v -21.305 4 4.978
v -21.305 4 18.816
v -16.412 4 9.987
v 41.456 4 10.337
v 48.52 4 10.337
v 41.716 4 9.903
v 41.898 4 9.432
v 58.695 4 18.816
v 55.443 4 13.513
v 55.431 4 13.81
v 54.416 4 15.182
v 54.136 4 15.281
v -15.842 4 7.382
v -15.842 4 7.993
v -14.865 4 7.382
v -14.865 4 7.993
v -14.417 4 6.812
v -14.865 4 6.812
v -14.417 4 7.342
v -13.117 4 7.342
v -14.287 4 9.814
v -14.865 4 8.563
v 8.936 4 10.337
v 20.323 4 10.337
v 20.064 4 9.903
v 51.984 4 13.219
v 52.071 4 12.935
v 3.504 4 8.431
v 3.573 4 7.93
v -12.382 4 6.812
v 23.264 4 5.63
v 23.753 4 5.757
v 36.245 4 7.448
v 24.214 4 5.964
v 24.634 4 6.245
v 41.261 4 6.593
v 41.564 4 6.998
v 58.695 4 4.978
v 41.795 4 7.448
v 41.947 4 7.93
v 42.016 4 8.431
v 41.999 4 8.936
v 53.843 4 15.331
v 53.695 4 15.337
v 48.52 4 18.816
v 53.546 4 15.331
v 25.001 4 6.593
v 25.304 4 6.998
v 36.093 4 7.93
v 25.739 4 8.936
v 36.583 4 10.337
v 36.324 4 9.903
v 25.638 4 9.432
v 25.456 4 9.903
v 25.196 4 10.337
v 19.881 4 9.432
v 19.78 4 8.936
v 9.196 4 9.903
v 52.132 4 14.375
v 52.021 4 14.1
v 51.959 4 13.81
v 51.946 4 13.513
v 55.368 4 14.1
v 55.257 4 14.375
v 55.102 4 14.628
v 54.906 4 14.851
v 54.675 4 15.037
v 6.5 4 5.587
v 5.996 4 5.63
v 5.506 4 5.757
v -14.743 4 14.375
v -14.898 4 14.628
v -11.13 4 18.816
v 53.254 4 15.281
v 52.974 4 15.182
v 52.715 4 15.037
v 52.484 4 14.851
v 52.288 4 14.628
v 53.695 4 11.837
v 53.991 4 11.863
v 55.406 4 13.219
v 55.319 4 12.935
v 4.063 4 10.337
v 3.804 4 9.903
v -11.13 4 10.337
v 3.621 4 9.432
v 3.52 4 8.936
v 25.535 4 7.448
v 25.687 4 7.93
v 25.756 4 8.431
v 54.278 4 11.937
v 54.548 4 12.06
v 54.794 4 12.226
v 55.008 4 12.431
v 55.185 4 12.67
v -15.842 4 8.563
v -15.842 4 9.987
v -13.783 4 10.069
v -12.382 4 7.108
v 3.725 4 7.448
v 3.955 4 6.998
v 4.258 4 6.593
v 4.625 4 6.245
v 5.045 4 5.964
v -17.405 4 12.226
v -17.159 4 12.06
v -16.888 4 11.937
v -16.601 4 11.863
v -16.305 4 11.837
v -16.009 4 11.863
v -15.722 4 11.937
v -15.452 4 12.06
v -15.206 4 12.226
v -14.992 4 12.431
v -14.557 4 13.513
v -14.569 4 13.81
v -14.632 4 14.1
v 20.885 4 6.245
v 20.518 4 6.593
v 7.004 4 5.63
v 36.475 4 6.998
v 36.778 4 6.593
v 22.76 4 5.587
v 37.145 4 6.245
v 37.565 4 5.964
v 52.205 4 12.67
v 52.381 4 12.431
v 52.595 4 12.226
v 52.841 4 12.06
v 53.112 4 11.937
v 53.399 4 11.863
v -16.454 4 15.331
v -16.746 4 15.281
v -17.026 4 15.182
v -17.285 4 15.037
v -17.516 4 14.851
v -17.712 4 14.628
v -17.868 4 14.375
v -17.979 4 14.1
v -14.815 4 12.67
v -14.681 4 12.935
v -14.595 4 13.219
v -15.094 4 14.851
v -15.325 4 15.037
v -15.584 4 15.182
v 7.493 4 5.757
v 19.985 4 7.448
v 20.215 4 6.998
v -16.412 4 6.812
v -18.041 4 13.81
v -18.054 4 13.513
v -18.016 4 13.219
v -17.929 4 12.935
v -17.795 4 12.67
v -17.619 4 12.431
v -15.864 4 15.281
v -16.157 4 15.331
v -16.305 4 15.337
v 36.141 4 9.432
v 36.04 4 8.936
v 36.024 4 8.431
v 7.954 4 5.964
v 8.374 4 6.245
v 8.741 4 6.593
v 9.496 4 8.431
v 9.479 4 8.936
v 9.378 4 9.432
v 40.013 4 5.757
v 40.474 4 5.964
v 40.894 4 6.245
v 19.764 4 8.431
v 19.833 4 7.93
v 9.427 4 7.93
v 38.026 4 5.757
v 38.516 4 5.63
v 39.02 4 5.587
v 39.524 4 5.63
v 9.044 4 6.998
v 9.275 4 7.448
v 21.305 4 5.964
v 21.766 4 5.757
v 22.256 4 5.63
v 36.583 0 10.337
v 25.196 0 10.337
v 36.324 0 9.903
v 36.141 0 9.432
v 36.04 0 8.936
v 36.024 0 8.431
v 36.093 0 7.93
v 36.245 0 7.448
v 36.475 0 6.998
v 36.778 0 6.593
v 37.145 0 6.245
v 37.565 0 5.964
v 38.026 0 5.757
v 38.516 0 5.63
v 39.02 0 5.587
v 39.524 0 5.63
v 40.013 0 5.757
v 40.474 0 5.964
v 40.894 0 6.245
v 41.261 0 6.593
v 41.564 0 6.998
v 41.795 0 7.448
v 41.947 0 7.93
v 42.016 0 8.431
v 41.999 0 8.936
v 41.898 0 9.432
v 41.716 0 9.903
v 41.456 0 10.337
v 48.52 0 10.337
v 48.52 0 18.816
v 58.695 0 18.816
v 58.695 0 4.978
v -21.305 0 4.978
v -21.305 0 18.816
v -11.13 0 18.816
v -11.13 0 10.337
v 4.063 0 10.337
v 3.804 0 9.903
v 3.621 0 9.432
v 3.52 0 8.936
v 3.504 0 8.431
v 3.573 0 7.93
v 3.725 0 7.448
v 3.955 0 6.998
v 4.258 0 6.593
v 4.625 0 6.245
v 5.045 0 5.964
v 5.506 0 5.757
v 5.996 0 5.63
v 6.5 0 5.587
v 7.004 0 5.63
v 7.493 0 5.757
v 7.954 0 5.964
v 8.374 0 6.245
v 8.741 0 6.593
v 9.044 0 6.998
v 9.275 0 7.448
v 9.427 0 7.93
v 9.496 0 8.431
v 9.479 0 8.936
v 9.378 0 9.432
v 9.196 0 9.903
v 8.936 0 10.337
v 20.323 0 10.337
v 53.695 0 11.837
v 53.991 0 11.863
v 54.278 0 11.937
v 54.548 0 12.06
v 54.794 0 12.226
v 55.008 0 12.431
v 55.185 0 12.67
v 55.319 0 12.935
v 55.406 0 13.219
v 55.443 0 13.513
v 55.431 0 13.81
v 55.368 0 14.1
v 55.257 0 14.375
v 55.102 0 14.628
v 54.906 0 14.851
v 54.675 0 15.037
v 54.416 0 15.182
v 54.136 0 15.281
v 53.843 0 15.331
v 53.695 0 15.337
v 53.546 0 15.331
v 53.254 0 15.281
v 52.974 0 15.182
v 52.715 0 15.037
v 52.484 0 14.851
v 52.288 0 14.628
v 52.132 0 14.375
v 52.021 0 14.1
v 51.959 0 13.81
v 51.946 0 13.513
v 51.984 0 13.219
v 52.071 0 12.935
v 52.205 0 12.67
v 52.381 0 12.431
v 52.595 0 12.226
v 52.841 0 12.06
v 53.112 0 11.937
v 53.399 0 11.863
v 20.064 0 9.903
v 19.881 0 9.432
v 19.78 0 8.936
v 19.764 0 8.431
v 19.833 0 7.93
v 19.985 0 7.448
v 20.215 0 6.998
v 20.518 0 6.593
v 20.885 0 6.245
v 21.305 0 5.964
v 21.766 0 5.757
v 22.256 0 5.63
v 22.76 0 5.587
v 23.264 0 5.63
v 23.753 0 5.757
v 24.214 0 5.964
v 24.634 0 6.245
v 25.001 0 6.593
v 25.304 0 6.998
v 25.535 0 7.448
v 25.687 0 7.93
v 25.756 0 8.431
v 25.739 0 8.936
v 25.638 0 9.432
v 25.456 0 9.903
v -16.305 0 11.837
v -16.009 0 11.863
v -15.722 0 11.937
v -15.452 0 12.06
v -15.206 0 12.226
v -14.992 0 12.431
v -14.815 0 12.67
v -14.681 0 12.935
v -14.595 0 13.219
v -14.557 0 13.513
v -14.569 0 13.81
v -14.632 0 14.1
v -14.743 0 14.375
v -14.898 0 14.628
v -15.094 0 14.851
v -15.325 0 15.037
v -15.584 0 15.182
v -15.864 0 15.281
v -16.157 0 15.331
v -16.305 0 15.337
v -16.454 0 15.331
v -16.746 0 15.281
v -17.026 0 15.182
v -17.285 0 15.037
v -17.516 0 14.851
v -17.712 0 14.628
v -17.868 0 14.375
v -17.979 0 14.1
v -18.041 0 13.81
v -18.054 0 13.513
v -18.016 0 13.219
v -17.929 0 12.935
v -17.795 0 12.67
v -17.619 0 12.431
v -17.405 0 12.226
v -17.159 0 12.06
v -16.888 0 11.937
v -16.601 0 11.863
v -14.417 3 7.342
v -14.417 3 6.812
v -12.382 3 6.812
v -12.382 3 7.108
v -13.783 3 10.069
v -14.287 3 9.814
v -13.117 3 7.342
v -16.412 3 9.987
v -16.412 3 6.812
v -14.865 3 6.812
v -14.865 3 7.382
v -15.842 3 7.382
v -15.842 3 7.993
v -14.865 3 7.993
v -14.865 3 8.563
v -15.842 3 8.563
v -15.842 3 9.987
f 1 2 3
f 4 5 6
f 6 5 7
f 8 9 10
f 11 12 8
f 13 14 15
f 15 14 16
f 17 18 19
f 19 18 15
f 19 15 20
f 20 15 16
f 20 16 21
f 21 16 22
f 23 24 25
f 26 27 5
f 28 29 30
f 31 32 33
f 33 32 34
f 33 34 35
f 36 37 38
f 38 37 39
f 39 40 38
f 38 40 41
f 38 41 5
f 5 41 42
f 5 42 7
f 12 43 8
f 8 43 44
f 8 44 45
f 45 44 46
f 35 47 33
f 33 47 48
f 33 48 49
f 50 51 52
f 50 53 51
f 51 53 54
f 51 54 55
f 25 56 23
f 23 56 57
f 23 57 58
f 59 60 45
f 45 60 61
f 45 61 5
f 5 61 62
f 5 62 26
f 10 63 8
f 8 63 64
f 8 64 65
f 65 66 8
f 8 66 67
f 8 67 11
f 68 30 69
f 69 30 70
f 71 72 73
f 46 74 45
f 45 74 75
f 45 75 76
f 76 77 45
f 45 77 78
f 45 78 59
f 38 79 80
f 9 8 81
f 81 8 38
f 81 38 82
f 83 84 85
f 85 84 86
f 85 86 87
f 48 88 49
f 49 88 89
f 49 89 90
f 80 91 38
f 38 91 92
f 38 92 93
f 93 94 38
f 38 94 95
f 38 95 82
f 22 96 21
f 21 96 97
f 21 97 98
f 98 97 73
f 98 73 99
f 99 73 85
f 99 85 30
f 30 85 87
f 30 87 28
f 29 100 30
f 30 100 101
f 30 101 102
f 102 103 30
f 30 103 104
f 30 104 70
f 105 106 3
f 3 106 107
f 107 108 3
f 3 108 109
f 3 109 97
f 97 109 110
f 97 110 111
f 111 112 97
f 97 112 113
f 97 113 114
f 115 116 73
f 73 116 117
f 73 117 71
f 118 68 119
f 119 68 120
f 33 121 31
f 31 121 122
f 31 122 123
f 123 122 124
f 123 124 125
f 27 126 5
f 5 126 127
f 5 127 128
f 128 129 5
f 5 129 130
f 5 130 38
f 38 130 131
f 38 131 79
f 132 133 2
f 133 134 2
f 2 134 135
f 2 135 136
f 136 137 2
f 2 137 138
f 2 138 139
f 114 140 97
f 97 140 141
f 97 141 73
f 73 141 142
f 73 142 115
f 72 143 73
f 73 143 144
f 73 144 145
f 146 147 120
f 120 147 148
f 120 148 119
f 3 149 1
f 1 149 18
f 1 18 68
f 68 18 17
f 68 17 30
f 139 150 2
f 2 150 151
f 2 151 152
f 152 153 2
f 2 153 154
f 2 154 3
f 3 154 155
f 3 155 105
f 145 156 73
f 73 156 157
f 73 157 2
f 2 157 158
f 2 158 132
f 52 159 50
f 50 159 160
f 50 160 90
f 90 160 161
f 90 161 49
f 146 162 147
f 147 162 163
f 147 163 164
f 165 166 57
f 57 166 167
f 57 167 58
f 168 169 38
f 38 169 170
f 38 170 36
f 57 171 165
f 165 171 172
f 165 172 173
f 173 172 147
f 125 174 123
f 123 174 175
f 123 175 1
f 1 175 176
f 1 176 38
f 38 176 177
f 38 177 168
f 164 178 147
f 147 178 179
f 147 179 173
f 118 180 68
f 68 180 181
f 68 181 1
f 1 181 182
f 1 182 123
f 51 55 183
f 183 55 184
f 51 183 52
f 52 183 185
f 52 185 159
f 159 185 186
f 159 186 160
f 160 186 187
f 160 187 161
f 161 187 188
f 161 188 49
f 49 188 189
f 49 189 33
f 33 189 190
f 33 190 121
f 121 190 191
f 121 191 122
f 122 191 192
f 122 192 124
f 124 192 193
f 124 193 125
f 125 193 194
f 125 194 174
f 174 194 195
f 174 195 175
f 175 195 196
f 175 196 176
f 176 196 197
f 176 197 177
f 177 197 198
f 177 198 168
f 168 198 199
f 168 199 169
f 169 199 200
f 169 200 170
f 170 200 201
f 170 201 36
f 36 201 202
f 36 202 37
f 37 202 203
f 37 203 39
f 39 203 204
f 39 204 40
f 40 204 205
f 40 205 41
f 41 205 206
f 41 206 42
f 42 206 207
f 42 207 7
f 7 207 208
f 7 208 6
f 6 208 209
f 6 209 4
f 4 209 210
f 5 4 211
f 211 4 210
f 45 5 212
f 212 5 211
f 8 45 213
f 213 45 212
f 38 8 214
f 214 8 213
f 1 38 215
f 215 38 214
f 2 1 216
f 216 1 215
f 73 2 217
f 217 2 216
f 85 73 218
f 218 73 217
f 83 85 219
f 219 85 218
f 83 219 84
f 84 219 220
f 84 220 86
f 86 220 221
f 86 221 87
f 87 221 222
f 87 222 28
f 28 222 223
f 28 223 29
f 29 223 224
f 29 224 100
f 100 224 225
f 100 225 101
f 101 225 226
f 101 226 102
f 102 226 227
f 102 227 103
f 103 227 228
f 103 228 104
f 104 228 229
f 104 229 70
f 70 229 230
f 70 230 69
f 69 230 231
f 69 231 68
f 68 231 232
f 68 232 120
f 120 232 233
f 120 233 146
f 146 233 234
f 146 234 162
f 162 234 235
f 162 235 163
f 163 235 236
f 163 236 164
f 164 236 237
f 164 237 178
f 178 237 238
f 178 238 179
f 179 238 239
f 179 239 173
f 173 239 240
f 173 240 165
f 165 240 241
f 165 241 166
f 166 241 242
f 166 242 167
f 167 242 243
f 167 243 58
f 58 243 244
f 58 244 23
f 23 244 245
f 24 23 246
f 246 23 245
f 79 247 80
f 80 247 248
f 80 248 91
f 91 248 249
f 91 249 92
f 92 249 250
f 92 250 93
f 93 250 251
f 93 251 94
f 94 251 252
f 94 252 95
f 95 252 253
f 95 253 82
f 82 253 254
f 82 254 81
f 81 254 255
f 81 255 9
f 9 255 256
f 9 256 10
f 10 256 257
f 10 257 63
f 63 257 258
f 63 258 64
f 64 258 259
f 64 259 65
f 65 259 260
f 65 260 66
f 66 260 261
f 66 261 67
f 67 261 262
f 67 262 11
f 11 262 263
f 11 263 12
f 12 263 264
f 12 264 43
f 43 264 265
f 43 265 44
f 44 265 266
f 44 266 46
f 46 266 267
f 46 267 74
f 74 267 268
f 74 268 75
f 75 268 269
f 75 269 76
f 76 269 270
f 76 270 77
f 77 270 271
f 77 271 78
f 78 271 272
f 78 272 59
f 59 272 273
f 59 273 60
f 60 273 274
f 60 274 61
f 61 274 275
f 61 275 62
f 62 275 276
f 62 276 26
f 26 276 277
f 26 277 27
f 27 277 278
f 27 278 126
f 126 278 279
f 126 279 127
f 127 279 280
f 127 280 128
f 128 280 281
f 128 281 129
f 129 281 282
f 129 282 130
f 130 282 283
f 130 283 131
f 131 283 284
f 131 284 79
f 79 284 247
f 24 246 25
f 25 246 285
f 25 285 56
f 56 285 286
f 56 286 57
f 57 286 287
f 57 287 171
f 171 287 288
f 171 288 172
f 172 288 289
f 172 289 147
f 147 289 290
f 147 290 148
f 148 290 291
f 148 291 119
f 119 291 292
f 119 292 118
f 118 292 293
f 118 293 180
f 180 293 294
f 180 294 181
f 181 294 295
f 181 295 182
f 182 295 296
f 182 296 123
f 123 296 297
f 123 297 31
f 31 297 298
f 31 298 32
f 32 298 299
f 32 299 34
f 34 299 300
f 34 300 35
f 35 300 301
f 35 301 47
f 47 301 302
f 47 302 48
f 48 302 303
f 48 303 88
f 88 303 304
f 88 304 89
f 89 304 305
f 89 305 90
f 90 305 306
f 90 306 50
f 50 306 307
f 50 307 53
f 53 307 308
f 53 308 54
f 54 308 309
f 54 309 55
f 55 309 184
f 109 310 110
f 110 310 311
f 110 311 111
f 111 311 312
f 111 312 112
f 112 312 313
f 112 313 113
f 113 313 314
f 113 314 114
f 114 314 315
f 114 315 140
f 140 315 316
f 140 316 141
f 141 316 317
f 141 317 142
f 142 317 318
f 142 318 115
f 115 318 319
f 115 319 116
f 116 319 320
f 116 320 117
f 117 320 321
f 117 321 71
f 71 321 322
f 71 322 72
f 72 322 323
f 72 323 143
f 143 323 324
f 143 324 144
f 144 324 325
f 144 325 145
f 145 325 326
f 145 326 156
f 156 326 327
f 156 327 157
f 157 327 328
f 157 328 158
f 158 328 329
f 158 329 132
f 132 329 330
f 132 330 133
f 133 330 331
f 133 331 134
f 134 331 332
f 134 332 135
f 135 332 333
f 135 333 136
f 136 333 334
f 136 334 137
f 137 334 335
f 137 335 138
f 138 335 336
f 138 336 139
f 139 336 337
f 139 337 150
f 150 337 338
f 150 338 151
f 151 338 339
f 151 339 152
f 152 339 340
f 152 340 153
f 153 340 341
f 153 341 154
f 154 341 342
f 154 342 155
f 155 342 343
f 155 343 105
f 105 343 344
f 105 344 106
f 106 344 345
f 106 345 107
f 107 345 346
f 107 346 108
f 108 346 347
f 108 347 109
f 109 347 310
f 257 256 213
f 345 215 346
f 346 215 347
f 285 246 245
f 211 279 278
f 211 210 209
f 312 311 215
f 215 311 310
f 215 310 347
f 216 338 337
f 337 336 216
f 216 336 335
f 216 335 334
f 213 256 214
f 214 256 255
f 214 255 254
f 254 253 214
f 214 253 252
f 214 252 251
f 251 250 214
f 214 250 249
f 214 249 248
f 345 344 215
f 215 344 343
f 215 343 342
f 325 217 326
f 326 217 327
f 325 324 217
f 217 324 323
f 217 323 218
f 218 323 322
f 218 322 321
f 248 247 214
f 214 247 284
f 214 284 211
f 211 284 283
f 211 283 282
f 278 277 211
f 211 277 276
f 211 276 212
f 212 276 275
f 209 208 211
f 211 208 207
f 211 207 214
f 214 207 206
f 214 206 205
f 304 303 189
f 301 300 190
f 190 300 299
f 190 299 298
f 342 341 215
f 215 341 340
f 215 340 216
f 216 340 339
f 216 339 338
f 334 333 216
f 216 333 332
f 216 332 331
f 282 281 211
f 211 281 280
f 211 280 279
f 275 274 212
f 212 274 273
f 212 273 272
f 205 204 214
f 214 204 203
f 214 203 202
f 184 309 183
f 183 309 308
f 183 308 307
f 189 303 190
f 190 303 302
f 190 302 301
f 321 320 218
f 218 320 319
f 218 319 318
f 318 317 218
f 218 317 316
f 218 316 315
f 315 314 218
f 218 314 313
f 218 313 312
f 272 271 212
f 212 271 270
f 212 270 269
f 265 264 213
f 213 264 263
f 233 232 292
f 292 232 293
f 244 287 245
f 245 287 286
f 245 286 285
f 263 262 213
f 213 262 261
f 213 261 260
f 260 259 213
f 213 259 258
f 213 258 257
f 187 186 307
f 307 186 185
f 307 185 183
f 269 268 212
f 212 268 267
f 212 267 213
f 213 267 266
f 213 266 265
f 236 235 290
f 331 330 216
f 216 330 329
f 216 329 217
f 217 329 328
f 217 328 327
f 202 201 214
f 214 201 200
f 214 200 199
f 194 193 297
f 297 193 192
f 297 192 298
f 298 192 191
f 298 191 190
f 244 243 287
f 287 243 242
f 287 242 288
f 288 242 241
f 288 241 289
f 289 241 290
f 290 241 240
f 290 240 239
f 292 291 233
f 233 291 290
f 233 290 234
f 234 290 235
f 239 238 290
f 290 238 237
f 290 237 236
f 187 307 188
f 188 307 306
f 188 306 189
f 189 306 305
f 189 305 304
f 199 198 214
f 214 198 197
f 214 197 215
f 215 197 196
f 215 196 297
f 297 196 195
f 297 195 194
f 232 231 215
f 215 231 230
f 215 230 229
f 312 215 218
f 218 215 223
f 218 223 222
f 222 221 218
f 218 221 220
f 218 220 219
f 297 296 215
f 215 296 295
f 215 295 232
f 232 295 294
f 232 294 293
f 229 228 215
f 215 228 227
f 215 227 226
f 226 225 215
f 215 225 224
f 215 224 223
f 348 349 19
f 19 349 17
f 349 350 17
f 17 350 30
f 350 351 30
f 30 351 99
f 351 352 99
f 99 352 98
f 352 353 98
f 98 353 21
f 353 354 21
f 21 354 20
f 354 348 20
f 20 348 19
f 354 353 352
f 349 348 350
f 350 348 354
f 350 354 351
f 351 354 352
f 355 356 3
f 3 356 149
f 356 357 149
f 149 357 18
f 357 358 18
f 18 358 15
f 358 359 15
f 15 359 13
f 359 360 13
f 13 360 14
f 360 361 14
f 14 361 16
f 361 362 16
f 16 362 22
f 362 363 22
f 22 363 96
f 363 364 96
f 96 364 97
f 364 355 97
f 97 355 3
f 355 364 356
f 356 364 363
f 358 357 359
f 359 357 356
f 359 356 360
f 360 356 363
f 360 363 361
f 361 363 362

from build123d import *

# Parameters (mm, degrees)
BOSS_EXTRUDE1_OUTLINE_R = 1.75
BOSS_EXTRUDE1_DEPTH     = 4
CUT_EXTRUDE1_DEPTH      = 1


# Read off the part's stored shape, not the designer's step: Boss-Extrude1
with BuildPart() as part:
    # Boss-Extrude1 outline → Boss-Extrude1 (new body)
    with BuildSketch(Plane(origin=(0, 0, 0), x_dir=(1, 0, 0), z_dir=(0, 1, 0))):
        with BuildLine():
            Line((25.196474615, -10.33744254), (36.58307775, -10.33744254))
            ThreePointArc((36.58307775, -10.33744254), (39.019776183, -5.587442326), (41.456474615, -10.33744254))
            Line((41.456474615, -10.33744254), (48.519776182, -10.33744254))
            Line((48.519776182, -10.33744254), (48.519776182, -18.81631662))
            Line((48.519776182, -18.81631662), (58.694776182, -18.81631662))
            Line((58.694776182, -18.81631662), (58.694776182, -4.977921711))
            Line((58.694776182, -4.977921711), (-21.305223818, -4.977921711))
            Line((-21.305223818, -4.977921711), (-21.305223818, -18.81631662))
            Line((-21.305223818, -18.81631662), (-11.130223818, -18.81631662))
            Line((-11.130223818, -18.81631662), (-11.130223818, -10.33744254))
            Line((-11.130223818, -10.33744254), (4.06307775, -10.33744254))
            ThreePointArc((4.06307775, -10.33744254), (6.499776182, -5.587442326), (8.936474615, -10.33744254))
            Line((8.936474615, -10.33744254), (20.32307775, -10.33744254))
            ThreePointArc((20.32307775, -10.33744254), (22.759776182, -5.587442326), (25.196474615, -10.33744254))
        make_face()
        with Locations((-16.305223818, -13.587442433)):
            Circle(BOSS_EXTRUDE1_OUTLINE_R, mode=Mode.SUBTRACT)
        with Locations((53.694776182, -13.587442433)):
            Circle(BOSS_EXTRUDE1_OUTLINE_R, mode=Mode.SUBTRACT)
    extrude(amount=BOSS_EXTRUDE1_DEPTH)

    # Sketch2 → Cut-Extrude1 (cut)
    with BuildSketch(Plane(origin=(0, 4, 0), x_dir=(1, 0, 0), z_dir=(0, 1, 0))):
        Polygon((-16.41198232, -6.812466594), (-14.865187448, -6.812466594), (-14.865187448, -7.382338389), (-15.842110525, -7.382338389), (-15.842110525, -7.992915312), (-14.865187448, -7.992915312), (-14.865187448, -8.562787107), (-15.842110525, -8.562787107), (-15.842110525, -9.987466594), (-16.41198232, -9.987466594), align=None)
        Polygon((-14.417431038, -6.812466594), (-12.382174628, -6.812466594), (-12.382174628, -7.108214791), (-13.782685445, -10.06887685), (-14.287047424, -9.814469799), (-13.117411006, -7.341633261), (-14.417431038, -7.341633261), align=None)
    extrude(amount=-CUT_EXTRUDE1_DEPTH, mode=Mode.SUBTRACT)


solid = part.part
